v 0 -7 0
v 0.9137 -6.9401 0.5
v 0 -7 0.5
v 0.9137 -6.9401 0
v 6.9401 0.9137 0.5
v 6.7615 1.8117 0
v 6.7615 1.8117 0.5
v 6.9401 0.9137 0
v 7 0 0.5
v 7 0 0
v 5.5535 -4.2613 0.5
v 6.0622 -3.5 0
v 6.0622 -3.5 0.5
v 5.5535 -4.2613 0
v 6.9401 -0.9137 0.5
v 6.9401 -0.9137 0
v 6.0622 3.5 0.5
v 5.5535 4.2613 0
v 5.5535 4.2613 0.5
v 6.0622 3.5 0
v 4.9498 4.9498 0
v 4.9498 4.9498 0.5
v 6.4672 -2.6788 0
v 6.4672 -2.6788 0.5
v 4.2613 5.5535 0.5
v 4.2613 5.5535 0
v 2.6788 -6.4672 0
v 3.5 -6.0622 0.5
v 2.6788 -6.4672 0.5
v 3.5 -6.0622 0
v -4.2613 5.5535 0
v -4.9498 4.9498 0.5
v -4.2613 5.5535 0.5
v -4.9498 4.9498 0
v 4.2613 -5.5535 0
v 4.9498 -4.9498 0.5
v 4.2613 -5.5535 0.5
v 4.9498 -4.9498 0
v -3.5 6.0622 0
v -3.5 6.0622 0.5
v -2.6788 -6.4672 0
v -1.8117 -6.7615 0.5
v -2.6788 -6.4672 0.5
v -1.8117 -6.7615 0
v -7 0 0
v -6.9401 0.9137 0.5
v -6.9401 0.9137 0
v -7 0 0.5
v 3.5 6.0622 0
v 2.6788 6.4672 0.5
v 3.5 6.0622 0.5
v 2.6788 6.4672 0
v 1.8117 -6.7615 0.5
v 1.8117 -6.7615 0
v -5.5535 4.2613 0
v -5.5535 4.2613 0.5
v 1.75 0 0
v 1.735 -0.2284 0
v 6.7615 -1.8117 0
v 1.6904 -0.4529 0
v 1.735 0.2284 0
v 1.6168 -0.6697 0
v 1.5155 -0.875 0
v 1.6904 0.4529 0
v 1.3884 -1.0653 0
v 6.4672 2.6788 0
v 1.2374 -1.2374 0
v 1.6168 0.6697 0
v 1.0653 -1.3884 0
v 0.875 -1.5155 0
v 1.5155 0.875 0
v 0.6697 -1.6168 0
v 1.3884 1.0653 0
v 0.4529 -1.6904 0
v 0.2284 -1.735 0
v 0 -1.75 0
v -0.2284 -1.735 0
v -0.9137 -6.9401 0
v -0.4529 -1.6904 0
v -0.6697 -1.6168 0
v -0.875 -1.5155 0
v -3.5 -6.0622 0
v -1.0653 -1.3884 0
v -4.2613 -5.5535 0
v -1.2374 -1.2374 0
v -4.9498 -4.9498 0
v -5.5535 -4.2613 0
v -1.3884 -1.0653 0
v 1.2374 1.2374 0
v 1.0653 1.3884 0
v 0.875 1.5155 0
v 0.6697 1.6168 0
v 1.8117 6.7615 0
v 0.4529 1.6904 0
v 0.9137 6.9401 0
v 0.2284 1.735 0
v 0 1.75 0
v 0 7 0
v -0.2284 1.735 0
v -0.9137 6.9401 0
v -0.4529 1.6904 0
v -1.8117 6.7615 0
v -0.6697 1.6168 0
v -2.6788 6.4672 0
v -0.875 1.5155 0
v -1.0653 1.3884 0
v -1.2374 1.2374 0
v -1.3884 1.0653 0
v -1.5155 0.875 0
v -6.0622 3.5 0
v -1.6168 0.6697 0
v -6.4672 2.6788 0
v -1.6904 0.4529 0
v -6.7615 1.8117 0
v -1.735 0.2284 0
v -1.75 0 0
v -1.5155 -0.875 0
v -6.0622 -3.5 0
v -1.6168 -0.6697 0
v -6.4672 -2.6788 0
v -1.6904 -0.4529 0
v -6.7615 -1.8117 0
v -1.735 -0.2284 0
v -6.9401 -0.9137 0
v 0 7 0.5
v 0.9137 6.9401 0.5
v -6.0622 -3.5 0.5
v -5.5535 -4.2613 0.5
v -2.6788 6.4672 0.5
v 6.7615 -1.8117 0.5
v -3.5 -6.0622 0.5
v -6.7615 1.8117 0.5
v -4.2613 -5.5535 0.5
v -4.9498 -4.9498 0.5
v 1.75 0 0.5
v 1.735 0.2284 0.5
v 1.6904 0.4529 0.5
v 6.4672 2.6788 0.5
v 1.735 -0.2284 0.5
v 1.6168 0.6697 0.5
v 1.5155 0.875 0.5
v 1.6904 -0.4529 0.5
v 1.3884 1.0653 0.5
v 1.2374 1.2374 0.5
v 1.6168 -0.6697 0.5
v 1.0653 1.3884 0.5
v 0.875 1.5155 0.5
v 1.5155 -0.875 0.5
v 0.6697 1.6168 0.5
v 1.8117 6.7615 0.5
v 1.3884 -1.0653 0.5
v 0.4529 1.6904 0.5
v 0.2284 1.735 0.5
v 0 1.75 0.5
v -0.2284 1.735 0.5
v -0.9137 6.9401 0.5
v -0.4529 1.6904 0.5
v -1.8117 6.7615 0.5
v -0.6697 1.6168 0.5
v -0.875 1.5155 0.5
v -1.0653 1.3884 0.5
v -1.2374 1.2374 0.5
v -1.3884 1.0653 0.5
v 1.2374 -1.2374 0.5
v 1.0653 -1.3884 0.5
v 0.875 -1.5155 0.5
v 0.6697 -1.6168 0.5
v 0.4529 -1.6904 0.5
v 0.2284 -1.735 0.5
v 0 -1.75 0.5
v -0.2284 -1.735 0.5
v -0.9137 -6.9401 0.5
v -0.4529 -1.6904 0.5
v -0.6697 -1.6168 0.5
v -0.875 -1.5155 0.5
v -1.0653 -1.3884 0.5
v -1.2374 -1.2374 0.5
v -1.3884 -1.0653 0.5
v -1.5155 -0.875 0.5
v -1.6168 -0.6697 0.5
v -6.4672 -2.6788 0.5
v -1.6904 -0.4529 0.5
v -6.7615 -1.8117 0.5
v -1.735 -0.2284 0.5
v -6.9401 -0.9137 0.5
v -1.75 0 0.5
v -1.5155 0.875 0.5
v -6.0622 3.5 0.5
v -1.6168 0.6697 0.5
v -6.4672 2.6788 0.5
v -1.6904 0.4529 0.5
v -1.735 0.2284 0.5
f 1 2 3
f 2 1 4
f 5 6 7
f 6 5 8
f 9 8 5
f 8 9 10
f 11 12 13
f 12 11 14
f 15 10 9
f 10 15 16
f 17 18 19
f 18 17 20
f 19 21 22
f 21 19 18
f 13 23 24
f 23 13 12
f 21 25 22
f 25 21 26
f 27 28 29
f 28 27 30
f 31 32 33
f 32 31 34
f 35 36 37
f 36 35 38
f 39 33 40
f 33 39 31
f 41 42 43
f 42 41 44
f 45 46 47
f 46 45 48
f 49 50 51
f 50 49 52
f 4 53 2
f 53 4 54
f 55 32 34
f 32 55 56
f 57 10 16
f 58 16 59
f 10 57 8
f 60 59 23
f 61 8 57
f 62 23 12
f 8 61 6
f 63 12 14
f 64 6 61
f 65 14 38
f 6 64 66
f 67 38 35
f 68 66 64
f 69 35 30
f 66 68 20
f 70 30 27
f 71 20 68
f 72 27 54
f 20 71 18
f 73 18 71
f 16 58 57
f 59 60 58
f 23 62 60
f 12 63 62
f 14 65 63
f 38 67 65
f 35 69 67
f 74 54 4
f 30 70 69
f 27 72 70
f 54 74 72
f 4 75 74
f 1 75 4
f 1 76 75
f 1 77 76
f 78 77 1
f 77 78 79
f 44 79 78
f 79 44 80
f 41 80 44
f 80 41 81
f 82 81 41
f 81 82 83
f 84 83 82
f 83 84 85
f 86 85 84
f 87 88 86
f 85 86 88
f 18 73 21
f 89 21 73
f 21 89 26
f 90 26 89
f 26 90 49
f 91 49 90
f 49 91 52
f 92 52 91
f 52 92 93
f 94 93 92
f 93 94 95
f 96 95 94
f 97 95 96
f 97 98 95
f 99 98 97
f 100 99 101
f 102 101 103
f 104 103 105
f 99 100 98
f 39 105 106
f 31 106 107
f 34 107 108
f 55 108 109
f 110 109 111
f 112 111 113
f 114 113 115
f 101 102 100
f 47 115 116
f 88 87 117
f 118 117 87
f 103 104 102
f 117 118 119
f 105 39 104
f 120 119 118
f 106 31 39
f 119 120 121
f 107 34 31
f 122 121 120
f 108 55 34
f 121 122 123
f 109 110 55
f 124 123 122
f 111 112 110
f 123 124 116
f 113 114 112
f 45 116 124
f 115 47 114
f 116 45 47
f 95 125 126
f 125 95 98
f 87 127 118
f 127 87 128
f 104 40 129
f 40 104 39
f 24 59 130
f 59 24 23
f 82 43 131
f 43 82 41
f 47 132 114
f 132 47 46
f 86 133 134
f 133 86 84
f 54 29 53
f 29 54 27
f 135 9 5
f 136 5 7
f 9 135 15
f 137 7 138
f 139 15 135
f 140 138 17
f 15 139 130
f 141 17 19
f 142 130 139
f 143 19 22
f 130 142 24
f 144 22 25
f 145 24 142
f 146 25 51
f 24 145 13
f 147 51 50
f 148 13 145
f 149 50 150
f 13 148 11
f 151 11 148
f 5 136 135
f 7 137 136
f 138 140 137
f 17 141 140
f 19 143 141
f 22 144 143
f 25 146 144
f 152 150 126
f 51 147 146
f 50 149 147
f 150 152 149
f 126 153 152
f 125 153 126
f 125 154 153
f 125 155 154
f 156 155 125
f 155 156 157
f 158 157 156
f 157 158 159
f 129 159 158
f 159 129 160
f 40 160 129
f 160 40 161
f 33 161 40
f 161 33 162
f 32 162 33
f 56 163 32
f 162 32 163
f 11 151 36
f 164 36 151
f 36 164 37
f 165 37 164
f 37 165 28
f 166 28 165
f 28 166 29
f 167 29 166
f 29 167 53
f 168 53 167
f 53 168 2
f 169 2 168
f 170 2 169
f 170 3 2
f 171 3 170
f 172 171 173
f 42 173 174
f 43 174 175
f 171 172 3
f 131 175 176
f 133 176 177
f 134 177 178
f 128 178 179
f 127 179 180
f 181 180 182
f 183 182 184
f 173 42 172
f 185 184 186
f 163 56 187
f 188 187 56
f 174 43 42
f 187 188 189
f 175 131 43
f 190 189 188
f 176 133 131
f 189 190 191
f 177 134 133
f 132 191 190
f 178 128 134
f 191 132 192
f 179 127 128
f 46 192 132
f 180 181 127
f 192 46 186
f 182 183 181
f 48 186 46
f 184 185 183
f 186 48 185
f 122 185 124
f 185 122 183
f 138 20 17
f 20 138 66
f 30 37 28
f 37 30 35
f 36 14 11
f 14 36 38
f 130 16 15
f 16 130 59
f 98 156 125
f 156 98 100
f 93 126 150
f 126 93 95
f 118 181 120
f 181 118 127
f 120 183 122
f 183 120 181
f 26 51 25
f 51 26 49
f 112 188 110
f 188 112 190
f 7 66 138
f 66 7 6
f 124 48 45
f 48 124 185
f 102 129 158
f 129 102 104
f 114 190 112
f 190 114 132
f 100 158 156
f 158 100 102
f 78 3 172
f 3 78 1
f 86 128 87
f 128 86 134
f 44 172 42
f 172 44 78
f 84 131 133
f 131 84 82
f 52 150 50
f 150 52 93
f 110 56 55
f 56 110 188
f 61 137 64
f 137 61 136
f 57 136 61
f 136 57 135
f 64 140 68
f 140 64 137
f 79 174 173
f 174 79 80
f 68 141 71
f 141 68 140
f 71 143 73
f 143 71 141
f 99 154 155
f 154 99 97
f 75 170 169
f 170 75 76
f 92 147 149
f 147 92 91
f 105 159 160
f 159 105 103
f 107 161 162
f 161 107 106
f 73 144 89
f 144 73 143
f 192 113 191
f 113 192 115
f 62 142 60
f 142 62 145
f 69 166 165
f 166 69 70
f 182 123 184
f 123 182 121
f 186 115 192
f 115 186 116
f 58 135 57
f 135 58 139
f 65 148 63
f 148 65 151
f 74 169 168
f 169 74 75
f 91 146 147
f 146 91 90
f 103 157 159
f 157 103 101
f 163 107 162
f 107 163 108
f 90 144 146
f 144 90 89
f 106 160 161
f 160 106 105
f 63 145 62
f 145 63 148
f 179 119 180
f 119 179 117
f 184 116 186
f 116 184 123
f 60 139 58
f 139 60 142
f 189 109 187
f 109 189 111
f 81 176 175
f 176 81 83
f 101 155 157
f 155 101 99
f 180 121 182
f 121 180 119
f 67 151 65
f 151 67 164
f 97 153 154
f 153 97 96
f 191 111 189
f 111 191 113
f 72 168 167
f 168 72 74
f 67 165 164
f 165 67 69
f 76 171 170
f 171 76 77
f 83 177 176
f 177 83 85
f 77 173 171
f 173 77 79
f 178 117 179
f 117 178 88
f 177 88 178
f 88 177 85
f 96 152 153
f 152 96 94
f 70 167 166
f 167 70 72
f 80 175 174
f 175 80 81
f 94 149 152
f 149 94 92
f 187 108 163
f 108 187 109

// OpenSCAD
// file: parameters.scad
// =============================================================================
// Gen-BE — nightly 2026-10-03 (physics_scorer, honest magpylib watts)
// Clocking 0 deg (magnets N facing S) + D-flat keyed bore + index notch + flip-symmetric braces/bolts.
// Windable 2-piece bobbin; turns = physics_scorer turns_fit; copper only between flanges.
// former_web = 3.60 mm (taller copper vs Gen-BA 2.46) — gap grows with web (honest Bz tradeoff).
// Steel back-iron: two buyable mild-steel discs behind each rotor (score with --back-iron).
// =============================================================================
topology            = "dual_rotor";

// --- Wire / winding (physics_scorer winding-fit) -------------------------------
wire_awg            = 26;
wire_od             = 0.45;     // insulated OD mm (bare 0.405)
fill_realistic      = 0.60;     // insulated-wire area / window, hand-wound layered
turns               = 107;       // = physics_scorer turns_fit (do NOT raise)
coil_former_type    = "bobbin";
coil_core_inset     = 7.90;     // radial copper build: hub = copper boundary inset by this
wind_build_axial    = 0.0;      // nothing proud of the flanges
wind_build_radial   = 0.0;

// --- Bobbin (base + lid) ---------------------------------------------------------
coil_id_r           = 26.00;    // copper boundary sector (over the magnet track)
coil_od_r           = 50.00;
span_deg            = 31.84;    // = pitch - 2*asin((wall+0.85)/coil_id_r) -> >=1.2 mm stator web
former_web          = 3.60;     // copper height between flanges
flange_t            = 0.60;
wall                = 1.00;     // flange lip beyond copper
former_bare_h       = former_web + 2 * flange_t;
coil_envelope_h     = former_bare_h + 2 * wind_build_axial;
tab_w               = 7.0;
tab_len             = 7.0;
tab_h               = former_bare_h / 2;
pin_d               = 1.9;      // 1.75 mm filament locating pin
coil_mount_r        = coil_od_r + 0.2 + 4.0;
lead_y              = 1.6;
lead_slot_w         = 0.9;
lead_groove_d       = 0.6;

// --- Gap -------------------------------------------------------------------------
run_clear           = 0.50;     // rotor face -> flange
gap_spacer_h        = run_clear + wind_build_axial;
m2m                 = coil_envelope_h + 2 * run_clear;

// --- Stator ----------------------------------------------------------------------
coil_stations       = 9;
bay_clear           = 0.25;
stator_thick        = former_bare_h;                        // bobbins flush both faces
stator_od           = 158.0;
shaft_clear_stator  = 14.0;     // stator is static; shaft only

// --- Rotor(s) --------------------------------------------------------------------
magnet_Br           = 1.43;     // N52
halbach_magnetisation = "diametric"; // O5x5 assist magnets MUST be DIAMETRICALLY magnetised (tangential)
rotor_b_same_axis   = true;     // same-index magnets share one axis: N faces S across the gap
large_pocket_d      = 20.3;
small_pocket_d      = 5.3;
pocket_h            = 5.2;
large_n             = 8;
R_large             = 38.0;
R_small_inner       = 24.0;
R_small_mid         = 38.0;
R_small_outer       = 55.0;
carrier_od          = 156.0;
carrier_thick       = 7.5;
hub_h               = 10.0;
hub_od              = 30.0;
rotor_b_offset_deg  = 0.0;      // CLOCKING: magnets directly opposite
shaft_key           = "dflat";
dflat_depth         = 0.5;      // 8 mm shaft with 0.5 mm flat (7.5 across flat)
index_notch_d       = 3.0;

// --- Modular MAX interface (Gen-E family) -----------------------------------------
shaft_bore          = 8.35;
dflat_x             = 4.0 - dflat_depth + (shaft_bore - 8.0) / 2;
bearing_d           = 21.85;
bearing_h           = 7.2;
m3_clear            = 3.5;
bolt_r_inner        = 30.0;
bolt_n_inner        = 4;
bolt_inner_angles   = [22.5, -22.5, 157.5, 202.5];  // between poles, flip-symmetric
flange_bolt_r       = 72.0;
flange_bolt_n       = 6;
brace_r             = 68.0;
brace_d             = 4.3;
brace_n             = 4;
brace_angles        = [45, 135, 225, 315];          // flip-symmetric

spacer_pad_od       = 14.0;
spacer_pad_id       = m3_clear;
endbell_od          = 158.0;
endbell_thick       = 8.0;
endbell_shaft_clear = 10.0;
plate_max_mm        = 410;

$fn = 64;
// main file
// Gen-BE — assembly gap shim, h = run_clear (rotor face -> flange); copper is inside the flanges
include <parameters.scad>;
$fn = 48;
difference() {
    cylinder(d=spacer_pad_od, h=gap_spacer_h);
    translate([0, 0, -0.1]) cylinder(d=spacer_pad_id, h=gap_spacer_h + 0.2);
}
